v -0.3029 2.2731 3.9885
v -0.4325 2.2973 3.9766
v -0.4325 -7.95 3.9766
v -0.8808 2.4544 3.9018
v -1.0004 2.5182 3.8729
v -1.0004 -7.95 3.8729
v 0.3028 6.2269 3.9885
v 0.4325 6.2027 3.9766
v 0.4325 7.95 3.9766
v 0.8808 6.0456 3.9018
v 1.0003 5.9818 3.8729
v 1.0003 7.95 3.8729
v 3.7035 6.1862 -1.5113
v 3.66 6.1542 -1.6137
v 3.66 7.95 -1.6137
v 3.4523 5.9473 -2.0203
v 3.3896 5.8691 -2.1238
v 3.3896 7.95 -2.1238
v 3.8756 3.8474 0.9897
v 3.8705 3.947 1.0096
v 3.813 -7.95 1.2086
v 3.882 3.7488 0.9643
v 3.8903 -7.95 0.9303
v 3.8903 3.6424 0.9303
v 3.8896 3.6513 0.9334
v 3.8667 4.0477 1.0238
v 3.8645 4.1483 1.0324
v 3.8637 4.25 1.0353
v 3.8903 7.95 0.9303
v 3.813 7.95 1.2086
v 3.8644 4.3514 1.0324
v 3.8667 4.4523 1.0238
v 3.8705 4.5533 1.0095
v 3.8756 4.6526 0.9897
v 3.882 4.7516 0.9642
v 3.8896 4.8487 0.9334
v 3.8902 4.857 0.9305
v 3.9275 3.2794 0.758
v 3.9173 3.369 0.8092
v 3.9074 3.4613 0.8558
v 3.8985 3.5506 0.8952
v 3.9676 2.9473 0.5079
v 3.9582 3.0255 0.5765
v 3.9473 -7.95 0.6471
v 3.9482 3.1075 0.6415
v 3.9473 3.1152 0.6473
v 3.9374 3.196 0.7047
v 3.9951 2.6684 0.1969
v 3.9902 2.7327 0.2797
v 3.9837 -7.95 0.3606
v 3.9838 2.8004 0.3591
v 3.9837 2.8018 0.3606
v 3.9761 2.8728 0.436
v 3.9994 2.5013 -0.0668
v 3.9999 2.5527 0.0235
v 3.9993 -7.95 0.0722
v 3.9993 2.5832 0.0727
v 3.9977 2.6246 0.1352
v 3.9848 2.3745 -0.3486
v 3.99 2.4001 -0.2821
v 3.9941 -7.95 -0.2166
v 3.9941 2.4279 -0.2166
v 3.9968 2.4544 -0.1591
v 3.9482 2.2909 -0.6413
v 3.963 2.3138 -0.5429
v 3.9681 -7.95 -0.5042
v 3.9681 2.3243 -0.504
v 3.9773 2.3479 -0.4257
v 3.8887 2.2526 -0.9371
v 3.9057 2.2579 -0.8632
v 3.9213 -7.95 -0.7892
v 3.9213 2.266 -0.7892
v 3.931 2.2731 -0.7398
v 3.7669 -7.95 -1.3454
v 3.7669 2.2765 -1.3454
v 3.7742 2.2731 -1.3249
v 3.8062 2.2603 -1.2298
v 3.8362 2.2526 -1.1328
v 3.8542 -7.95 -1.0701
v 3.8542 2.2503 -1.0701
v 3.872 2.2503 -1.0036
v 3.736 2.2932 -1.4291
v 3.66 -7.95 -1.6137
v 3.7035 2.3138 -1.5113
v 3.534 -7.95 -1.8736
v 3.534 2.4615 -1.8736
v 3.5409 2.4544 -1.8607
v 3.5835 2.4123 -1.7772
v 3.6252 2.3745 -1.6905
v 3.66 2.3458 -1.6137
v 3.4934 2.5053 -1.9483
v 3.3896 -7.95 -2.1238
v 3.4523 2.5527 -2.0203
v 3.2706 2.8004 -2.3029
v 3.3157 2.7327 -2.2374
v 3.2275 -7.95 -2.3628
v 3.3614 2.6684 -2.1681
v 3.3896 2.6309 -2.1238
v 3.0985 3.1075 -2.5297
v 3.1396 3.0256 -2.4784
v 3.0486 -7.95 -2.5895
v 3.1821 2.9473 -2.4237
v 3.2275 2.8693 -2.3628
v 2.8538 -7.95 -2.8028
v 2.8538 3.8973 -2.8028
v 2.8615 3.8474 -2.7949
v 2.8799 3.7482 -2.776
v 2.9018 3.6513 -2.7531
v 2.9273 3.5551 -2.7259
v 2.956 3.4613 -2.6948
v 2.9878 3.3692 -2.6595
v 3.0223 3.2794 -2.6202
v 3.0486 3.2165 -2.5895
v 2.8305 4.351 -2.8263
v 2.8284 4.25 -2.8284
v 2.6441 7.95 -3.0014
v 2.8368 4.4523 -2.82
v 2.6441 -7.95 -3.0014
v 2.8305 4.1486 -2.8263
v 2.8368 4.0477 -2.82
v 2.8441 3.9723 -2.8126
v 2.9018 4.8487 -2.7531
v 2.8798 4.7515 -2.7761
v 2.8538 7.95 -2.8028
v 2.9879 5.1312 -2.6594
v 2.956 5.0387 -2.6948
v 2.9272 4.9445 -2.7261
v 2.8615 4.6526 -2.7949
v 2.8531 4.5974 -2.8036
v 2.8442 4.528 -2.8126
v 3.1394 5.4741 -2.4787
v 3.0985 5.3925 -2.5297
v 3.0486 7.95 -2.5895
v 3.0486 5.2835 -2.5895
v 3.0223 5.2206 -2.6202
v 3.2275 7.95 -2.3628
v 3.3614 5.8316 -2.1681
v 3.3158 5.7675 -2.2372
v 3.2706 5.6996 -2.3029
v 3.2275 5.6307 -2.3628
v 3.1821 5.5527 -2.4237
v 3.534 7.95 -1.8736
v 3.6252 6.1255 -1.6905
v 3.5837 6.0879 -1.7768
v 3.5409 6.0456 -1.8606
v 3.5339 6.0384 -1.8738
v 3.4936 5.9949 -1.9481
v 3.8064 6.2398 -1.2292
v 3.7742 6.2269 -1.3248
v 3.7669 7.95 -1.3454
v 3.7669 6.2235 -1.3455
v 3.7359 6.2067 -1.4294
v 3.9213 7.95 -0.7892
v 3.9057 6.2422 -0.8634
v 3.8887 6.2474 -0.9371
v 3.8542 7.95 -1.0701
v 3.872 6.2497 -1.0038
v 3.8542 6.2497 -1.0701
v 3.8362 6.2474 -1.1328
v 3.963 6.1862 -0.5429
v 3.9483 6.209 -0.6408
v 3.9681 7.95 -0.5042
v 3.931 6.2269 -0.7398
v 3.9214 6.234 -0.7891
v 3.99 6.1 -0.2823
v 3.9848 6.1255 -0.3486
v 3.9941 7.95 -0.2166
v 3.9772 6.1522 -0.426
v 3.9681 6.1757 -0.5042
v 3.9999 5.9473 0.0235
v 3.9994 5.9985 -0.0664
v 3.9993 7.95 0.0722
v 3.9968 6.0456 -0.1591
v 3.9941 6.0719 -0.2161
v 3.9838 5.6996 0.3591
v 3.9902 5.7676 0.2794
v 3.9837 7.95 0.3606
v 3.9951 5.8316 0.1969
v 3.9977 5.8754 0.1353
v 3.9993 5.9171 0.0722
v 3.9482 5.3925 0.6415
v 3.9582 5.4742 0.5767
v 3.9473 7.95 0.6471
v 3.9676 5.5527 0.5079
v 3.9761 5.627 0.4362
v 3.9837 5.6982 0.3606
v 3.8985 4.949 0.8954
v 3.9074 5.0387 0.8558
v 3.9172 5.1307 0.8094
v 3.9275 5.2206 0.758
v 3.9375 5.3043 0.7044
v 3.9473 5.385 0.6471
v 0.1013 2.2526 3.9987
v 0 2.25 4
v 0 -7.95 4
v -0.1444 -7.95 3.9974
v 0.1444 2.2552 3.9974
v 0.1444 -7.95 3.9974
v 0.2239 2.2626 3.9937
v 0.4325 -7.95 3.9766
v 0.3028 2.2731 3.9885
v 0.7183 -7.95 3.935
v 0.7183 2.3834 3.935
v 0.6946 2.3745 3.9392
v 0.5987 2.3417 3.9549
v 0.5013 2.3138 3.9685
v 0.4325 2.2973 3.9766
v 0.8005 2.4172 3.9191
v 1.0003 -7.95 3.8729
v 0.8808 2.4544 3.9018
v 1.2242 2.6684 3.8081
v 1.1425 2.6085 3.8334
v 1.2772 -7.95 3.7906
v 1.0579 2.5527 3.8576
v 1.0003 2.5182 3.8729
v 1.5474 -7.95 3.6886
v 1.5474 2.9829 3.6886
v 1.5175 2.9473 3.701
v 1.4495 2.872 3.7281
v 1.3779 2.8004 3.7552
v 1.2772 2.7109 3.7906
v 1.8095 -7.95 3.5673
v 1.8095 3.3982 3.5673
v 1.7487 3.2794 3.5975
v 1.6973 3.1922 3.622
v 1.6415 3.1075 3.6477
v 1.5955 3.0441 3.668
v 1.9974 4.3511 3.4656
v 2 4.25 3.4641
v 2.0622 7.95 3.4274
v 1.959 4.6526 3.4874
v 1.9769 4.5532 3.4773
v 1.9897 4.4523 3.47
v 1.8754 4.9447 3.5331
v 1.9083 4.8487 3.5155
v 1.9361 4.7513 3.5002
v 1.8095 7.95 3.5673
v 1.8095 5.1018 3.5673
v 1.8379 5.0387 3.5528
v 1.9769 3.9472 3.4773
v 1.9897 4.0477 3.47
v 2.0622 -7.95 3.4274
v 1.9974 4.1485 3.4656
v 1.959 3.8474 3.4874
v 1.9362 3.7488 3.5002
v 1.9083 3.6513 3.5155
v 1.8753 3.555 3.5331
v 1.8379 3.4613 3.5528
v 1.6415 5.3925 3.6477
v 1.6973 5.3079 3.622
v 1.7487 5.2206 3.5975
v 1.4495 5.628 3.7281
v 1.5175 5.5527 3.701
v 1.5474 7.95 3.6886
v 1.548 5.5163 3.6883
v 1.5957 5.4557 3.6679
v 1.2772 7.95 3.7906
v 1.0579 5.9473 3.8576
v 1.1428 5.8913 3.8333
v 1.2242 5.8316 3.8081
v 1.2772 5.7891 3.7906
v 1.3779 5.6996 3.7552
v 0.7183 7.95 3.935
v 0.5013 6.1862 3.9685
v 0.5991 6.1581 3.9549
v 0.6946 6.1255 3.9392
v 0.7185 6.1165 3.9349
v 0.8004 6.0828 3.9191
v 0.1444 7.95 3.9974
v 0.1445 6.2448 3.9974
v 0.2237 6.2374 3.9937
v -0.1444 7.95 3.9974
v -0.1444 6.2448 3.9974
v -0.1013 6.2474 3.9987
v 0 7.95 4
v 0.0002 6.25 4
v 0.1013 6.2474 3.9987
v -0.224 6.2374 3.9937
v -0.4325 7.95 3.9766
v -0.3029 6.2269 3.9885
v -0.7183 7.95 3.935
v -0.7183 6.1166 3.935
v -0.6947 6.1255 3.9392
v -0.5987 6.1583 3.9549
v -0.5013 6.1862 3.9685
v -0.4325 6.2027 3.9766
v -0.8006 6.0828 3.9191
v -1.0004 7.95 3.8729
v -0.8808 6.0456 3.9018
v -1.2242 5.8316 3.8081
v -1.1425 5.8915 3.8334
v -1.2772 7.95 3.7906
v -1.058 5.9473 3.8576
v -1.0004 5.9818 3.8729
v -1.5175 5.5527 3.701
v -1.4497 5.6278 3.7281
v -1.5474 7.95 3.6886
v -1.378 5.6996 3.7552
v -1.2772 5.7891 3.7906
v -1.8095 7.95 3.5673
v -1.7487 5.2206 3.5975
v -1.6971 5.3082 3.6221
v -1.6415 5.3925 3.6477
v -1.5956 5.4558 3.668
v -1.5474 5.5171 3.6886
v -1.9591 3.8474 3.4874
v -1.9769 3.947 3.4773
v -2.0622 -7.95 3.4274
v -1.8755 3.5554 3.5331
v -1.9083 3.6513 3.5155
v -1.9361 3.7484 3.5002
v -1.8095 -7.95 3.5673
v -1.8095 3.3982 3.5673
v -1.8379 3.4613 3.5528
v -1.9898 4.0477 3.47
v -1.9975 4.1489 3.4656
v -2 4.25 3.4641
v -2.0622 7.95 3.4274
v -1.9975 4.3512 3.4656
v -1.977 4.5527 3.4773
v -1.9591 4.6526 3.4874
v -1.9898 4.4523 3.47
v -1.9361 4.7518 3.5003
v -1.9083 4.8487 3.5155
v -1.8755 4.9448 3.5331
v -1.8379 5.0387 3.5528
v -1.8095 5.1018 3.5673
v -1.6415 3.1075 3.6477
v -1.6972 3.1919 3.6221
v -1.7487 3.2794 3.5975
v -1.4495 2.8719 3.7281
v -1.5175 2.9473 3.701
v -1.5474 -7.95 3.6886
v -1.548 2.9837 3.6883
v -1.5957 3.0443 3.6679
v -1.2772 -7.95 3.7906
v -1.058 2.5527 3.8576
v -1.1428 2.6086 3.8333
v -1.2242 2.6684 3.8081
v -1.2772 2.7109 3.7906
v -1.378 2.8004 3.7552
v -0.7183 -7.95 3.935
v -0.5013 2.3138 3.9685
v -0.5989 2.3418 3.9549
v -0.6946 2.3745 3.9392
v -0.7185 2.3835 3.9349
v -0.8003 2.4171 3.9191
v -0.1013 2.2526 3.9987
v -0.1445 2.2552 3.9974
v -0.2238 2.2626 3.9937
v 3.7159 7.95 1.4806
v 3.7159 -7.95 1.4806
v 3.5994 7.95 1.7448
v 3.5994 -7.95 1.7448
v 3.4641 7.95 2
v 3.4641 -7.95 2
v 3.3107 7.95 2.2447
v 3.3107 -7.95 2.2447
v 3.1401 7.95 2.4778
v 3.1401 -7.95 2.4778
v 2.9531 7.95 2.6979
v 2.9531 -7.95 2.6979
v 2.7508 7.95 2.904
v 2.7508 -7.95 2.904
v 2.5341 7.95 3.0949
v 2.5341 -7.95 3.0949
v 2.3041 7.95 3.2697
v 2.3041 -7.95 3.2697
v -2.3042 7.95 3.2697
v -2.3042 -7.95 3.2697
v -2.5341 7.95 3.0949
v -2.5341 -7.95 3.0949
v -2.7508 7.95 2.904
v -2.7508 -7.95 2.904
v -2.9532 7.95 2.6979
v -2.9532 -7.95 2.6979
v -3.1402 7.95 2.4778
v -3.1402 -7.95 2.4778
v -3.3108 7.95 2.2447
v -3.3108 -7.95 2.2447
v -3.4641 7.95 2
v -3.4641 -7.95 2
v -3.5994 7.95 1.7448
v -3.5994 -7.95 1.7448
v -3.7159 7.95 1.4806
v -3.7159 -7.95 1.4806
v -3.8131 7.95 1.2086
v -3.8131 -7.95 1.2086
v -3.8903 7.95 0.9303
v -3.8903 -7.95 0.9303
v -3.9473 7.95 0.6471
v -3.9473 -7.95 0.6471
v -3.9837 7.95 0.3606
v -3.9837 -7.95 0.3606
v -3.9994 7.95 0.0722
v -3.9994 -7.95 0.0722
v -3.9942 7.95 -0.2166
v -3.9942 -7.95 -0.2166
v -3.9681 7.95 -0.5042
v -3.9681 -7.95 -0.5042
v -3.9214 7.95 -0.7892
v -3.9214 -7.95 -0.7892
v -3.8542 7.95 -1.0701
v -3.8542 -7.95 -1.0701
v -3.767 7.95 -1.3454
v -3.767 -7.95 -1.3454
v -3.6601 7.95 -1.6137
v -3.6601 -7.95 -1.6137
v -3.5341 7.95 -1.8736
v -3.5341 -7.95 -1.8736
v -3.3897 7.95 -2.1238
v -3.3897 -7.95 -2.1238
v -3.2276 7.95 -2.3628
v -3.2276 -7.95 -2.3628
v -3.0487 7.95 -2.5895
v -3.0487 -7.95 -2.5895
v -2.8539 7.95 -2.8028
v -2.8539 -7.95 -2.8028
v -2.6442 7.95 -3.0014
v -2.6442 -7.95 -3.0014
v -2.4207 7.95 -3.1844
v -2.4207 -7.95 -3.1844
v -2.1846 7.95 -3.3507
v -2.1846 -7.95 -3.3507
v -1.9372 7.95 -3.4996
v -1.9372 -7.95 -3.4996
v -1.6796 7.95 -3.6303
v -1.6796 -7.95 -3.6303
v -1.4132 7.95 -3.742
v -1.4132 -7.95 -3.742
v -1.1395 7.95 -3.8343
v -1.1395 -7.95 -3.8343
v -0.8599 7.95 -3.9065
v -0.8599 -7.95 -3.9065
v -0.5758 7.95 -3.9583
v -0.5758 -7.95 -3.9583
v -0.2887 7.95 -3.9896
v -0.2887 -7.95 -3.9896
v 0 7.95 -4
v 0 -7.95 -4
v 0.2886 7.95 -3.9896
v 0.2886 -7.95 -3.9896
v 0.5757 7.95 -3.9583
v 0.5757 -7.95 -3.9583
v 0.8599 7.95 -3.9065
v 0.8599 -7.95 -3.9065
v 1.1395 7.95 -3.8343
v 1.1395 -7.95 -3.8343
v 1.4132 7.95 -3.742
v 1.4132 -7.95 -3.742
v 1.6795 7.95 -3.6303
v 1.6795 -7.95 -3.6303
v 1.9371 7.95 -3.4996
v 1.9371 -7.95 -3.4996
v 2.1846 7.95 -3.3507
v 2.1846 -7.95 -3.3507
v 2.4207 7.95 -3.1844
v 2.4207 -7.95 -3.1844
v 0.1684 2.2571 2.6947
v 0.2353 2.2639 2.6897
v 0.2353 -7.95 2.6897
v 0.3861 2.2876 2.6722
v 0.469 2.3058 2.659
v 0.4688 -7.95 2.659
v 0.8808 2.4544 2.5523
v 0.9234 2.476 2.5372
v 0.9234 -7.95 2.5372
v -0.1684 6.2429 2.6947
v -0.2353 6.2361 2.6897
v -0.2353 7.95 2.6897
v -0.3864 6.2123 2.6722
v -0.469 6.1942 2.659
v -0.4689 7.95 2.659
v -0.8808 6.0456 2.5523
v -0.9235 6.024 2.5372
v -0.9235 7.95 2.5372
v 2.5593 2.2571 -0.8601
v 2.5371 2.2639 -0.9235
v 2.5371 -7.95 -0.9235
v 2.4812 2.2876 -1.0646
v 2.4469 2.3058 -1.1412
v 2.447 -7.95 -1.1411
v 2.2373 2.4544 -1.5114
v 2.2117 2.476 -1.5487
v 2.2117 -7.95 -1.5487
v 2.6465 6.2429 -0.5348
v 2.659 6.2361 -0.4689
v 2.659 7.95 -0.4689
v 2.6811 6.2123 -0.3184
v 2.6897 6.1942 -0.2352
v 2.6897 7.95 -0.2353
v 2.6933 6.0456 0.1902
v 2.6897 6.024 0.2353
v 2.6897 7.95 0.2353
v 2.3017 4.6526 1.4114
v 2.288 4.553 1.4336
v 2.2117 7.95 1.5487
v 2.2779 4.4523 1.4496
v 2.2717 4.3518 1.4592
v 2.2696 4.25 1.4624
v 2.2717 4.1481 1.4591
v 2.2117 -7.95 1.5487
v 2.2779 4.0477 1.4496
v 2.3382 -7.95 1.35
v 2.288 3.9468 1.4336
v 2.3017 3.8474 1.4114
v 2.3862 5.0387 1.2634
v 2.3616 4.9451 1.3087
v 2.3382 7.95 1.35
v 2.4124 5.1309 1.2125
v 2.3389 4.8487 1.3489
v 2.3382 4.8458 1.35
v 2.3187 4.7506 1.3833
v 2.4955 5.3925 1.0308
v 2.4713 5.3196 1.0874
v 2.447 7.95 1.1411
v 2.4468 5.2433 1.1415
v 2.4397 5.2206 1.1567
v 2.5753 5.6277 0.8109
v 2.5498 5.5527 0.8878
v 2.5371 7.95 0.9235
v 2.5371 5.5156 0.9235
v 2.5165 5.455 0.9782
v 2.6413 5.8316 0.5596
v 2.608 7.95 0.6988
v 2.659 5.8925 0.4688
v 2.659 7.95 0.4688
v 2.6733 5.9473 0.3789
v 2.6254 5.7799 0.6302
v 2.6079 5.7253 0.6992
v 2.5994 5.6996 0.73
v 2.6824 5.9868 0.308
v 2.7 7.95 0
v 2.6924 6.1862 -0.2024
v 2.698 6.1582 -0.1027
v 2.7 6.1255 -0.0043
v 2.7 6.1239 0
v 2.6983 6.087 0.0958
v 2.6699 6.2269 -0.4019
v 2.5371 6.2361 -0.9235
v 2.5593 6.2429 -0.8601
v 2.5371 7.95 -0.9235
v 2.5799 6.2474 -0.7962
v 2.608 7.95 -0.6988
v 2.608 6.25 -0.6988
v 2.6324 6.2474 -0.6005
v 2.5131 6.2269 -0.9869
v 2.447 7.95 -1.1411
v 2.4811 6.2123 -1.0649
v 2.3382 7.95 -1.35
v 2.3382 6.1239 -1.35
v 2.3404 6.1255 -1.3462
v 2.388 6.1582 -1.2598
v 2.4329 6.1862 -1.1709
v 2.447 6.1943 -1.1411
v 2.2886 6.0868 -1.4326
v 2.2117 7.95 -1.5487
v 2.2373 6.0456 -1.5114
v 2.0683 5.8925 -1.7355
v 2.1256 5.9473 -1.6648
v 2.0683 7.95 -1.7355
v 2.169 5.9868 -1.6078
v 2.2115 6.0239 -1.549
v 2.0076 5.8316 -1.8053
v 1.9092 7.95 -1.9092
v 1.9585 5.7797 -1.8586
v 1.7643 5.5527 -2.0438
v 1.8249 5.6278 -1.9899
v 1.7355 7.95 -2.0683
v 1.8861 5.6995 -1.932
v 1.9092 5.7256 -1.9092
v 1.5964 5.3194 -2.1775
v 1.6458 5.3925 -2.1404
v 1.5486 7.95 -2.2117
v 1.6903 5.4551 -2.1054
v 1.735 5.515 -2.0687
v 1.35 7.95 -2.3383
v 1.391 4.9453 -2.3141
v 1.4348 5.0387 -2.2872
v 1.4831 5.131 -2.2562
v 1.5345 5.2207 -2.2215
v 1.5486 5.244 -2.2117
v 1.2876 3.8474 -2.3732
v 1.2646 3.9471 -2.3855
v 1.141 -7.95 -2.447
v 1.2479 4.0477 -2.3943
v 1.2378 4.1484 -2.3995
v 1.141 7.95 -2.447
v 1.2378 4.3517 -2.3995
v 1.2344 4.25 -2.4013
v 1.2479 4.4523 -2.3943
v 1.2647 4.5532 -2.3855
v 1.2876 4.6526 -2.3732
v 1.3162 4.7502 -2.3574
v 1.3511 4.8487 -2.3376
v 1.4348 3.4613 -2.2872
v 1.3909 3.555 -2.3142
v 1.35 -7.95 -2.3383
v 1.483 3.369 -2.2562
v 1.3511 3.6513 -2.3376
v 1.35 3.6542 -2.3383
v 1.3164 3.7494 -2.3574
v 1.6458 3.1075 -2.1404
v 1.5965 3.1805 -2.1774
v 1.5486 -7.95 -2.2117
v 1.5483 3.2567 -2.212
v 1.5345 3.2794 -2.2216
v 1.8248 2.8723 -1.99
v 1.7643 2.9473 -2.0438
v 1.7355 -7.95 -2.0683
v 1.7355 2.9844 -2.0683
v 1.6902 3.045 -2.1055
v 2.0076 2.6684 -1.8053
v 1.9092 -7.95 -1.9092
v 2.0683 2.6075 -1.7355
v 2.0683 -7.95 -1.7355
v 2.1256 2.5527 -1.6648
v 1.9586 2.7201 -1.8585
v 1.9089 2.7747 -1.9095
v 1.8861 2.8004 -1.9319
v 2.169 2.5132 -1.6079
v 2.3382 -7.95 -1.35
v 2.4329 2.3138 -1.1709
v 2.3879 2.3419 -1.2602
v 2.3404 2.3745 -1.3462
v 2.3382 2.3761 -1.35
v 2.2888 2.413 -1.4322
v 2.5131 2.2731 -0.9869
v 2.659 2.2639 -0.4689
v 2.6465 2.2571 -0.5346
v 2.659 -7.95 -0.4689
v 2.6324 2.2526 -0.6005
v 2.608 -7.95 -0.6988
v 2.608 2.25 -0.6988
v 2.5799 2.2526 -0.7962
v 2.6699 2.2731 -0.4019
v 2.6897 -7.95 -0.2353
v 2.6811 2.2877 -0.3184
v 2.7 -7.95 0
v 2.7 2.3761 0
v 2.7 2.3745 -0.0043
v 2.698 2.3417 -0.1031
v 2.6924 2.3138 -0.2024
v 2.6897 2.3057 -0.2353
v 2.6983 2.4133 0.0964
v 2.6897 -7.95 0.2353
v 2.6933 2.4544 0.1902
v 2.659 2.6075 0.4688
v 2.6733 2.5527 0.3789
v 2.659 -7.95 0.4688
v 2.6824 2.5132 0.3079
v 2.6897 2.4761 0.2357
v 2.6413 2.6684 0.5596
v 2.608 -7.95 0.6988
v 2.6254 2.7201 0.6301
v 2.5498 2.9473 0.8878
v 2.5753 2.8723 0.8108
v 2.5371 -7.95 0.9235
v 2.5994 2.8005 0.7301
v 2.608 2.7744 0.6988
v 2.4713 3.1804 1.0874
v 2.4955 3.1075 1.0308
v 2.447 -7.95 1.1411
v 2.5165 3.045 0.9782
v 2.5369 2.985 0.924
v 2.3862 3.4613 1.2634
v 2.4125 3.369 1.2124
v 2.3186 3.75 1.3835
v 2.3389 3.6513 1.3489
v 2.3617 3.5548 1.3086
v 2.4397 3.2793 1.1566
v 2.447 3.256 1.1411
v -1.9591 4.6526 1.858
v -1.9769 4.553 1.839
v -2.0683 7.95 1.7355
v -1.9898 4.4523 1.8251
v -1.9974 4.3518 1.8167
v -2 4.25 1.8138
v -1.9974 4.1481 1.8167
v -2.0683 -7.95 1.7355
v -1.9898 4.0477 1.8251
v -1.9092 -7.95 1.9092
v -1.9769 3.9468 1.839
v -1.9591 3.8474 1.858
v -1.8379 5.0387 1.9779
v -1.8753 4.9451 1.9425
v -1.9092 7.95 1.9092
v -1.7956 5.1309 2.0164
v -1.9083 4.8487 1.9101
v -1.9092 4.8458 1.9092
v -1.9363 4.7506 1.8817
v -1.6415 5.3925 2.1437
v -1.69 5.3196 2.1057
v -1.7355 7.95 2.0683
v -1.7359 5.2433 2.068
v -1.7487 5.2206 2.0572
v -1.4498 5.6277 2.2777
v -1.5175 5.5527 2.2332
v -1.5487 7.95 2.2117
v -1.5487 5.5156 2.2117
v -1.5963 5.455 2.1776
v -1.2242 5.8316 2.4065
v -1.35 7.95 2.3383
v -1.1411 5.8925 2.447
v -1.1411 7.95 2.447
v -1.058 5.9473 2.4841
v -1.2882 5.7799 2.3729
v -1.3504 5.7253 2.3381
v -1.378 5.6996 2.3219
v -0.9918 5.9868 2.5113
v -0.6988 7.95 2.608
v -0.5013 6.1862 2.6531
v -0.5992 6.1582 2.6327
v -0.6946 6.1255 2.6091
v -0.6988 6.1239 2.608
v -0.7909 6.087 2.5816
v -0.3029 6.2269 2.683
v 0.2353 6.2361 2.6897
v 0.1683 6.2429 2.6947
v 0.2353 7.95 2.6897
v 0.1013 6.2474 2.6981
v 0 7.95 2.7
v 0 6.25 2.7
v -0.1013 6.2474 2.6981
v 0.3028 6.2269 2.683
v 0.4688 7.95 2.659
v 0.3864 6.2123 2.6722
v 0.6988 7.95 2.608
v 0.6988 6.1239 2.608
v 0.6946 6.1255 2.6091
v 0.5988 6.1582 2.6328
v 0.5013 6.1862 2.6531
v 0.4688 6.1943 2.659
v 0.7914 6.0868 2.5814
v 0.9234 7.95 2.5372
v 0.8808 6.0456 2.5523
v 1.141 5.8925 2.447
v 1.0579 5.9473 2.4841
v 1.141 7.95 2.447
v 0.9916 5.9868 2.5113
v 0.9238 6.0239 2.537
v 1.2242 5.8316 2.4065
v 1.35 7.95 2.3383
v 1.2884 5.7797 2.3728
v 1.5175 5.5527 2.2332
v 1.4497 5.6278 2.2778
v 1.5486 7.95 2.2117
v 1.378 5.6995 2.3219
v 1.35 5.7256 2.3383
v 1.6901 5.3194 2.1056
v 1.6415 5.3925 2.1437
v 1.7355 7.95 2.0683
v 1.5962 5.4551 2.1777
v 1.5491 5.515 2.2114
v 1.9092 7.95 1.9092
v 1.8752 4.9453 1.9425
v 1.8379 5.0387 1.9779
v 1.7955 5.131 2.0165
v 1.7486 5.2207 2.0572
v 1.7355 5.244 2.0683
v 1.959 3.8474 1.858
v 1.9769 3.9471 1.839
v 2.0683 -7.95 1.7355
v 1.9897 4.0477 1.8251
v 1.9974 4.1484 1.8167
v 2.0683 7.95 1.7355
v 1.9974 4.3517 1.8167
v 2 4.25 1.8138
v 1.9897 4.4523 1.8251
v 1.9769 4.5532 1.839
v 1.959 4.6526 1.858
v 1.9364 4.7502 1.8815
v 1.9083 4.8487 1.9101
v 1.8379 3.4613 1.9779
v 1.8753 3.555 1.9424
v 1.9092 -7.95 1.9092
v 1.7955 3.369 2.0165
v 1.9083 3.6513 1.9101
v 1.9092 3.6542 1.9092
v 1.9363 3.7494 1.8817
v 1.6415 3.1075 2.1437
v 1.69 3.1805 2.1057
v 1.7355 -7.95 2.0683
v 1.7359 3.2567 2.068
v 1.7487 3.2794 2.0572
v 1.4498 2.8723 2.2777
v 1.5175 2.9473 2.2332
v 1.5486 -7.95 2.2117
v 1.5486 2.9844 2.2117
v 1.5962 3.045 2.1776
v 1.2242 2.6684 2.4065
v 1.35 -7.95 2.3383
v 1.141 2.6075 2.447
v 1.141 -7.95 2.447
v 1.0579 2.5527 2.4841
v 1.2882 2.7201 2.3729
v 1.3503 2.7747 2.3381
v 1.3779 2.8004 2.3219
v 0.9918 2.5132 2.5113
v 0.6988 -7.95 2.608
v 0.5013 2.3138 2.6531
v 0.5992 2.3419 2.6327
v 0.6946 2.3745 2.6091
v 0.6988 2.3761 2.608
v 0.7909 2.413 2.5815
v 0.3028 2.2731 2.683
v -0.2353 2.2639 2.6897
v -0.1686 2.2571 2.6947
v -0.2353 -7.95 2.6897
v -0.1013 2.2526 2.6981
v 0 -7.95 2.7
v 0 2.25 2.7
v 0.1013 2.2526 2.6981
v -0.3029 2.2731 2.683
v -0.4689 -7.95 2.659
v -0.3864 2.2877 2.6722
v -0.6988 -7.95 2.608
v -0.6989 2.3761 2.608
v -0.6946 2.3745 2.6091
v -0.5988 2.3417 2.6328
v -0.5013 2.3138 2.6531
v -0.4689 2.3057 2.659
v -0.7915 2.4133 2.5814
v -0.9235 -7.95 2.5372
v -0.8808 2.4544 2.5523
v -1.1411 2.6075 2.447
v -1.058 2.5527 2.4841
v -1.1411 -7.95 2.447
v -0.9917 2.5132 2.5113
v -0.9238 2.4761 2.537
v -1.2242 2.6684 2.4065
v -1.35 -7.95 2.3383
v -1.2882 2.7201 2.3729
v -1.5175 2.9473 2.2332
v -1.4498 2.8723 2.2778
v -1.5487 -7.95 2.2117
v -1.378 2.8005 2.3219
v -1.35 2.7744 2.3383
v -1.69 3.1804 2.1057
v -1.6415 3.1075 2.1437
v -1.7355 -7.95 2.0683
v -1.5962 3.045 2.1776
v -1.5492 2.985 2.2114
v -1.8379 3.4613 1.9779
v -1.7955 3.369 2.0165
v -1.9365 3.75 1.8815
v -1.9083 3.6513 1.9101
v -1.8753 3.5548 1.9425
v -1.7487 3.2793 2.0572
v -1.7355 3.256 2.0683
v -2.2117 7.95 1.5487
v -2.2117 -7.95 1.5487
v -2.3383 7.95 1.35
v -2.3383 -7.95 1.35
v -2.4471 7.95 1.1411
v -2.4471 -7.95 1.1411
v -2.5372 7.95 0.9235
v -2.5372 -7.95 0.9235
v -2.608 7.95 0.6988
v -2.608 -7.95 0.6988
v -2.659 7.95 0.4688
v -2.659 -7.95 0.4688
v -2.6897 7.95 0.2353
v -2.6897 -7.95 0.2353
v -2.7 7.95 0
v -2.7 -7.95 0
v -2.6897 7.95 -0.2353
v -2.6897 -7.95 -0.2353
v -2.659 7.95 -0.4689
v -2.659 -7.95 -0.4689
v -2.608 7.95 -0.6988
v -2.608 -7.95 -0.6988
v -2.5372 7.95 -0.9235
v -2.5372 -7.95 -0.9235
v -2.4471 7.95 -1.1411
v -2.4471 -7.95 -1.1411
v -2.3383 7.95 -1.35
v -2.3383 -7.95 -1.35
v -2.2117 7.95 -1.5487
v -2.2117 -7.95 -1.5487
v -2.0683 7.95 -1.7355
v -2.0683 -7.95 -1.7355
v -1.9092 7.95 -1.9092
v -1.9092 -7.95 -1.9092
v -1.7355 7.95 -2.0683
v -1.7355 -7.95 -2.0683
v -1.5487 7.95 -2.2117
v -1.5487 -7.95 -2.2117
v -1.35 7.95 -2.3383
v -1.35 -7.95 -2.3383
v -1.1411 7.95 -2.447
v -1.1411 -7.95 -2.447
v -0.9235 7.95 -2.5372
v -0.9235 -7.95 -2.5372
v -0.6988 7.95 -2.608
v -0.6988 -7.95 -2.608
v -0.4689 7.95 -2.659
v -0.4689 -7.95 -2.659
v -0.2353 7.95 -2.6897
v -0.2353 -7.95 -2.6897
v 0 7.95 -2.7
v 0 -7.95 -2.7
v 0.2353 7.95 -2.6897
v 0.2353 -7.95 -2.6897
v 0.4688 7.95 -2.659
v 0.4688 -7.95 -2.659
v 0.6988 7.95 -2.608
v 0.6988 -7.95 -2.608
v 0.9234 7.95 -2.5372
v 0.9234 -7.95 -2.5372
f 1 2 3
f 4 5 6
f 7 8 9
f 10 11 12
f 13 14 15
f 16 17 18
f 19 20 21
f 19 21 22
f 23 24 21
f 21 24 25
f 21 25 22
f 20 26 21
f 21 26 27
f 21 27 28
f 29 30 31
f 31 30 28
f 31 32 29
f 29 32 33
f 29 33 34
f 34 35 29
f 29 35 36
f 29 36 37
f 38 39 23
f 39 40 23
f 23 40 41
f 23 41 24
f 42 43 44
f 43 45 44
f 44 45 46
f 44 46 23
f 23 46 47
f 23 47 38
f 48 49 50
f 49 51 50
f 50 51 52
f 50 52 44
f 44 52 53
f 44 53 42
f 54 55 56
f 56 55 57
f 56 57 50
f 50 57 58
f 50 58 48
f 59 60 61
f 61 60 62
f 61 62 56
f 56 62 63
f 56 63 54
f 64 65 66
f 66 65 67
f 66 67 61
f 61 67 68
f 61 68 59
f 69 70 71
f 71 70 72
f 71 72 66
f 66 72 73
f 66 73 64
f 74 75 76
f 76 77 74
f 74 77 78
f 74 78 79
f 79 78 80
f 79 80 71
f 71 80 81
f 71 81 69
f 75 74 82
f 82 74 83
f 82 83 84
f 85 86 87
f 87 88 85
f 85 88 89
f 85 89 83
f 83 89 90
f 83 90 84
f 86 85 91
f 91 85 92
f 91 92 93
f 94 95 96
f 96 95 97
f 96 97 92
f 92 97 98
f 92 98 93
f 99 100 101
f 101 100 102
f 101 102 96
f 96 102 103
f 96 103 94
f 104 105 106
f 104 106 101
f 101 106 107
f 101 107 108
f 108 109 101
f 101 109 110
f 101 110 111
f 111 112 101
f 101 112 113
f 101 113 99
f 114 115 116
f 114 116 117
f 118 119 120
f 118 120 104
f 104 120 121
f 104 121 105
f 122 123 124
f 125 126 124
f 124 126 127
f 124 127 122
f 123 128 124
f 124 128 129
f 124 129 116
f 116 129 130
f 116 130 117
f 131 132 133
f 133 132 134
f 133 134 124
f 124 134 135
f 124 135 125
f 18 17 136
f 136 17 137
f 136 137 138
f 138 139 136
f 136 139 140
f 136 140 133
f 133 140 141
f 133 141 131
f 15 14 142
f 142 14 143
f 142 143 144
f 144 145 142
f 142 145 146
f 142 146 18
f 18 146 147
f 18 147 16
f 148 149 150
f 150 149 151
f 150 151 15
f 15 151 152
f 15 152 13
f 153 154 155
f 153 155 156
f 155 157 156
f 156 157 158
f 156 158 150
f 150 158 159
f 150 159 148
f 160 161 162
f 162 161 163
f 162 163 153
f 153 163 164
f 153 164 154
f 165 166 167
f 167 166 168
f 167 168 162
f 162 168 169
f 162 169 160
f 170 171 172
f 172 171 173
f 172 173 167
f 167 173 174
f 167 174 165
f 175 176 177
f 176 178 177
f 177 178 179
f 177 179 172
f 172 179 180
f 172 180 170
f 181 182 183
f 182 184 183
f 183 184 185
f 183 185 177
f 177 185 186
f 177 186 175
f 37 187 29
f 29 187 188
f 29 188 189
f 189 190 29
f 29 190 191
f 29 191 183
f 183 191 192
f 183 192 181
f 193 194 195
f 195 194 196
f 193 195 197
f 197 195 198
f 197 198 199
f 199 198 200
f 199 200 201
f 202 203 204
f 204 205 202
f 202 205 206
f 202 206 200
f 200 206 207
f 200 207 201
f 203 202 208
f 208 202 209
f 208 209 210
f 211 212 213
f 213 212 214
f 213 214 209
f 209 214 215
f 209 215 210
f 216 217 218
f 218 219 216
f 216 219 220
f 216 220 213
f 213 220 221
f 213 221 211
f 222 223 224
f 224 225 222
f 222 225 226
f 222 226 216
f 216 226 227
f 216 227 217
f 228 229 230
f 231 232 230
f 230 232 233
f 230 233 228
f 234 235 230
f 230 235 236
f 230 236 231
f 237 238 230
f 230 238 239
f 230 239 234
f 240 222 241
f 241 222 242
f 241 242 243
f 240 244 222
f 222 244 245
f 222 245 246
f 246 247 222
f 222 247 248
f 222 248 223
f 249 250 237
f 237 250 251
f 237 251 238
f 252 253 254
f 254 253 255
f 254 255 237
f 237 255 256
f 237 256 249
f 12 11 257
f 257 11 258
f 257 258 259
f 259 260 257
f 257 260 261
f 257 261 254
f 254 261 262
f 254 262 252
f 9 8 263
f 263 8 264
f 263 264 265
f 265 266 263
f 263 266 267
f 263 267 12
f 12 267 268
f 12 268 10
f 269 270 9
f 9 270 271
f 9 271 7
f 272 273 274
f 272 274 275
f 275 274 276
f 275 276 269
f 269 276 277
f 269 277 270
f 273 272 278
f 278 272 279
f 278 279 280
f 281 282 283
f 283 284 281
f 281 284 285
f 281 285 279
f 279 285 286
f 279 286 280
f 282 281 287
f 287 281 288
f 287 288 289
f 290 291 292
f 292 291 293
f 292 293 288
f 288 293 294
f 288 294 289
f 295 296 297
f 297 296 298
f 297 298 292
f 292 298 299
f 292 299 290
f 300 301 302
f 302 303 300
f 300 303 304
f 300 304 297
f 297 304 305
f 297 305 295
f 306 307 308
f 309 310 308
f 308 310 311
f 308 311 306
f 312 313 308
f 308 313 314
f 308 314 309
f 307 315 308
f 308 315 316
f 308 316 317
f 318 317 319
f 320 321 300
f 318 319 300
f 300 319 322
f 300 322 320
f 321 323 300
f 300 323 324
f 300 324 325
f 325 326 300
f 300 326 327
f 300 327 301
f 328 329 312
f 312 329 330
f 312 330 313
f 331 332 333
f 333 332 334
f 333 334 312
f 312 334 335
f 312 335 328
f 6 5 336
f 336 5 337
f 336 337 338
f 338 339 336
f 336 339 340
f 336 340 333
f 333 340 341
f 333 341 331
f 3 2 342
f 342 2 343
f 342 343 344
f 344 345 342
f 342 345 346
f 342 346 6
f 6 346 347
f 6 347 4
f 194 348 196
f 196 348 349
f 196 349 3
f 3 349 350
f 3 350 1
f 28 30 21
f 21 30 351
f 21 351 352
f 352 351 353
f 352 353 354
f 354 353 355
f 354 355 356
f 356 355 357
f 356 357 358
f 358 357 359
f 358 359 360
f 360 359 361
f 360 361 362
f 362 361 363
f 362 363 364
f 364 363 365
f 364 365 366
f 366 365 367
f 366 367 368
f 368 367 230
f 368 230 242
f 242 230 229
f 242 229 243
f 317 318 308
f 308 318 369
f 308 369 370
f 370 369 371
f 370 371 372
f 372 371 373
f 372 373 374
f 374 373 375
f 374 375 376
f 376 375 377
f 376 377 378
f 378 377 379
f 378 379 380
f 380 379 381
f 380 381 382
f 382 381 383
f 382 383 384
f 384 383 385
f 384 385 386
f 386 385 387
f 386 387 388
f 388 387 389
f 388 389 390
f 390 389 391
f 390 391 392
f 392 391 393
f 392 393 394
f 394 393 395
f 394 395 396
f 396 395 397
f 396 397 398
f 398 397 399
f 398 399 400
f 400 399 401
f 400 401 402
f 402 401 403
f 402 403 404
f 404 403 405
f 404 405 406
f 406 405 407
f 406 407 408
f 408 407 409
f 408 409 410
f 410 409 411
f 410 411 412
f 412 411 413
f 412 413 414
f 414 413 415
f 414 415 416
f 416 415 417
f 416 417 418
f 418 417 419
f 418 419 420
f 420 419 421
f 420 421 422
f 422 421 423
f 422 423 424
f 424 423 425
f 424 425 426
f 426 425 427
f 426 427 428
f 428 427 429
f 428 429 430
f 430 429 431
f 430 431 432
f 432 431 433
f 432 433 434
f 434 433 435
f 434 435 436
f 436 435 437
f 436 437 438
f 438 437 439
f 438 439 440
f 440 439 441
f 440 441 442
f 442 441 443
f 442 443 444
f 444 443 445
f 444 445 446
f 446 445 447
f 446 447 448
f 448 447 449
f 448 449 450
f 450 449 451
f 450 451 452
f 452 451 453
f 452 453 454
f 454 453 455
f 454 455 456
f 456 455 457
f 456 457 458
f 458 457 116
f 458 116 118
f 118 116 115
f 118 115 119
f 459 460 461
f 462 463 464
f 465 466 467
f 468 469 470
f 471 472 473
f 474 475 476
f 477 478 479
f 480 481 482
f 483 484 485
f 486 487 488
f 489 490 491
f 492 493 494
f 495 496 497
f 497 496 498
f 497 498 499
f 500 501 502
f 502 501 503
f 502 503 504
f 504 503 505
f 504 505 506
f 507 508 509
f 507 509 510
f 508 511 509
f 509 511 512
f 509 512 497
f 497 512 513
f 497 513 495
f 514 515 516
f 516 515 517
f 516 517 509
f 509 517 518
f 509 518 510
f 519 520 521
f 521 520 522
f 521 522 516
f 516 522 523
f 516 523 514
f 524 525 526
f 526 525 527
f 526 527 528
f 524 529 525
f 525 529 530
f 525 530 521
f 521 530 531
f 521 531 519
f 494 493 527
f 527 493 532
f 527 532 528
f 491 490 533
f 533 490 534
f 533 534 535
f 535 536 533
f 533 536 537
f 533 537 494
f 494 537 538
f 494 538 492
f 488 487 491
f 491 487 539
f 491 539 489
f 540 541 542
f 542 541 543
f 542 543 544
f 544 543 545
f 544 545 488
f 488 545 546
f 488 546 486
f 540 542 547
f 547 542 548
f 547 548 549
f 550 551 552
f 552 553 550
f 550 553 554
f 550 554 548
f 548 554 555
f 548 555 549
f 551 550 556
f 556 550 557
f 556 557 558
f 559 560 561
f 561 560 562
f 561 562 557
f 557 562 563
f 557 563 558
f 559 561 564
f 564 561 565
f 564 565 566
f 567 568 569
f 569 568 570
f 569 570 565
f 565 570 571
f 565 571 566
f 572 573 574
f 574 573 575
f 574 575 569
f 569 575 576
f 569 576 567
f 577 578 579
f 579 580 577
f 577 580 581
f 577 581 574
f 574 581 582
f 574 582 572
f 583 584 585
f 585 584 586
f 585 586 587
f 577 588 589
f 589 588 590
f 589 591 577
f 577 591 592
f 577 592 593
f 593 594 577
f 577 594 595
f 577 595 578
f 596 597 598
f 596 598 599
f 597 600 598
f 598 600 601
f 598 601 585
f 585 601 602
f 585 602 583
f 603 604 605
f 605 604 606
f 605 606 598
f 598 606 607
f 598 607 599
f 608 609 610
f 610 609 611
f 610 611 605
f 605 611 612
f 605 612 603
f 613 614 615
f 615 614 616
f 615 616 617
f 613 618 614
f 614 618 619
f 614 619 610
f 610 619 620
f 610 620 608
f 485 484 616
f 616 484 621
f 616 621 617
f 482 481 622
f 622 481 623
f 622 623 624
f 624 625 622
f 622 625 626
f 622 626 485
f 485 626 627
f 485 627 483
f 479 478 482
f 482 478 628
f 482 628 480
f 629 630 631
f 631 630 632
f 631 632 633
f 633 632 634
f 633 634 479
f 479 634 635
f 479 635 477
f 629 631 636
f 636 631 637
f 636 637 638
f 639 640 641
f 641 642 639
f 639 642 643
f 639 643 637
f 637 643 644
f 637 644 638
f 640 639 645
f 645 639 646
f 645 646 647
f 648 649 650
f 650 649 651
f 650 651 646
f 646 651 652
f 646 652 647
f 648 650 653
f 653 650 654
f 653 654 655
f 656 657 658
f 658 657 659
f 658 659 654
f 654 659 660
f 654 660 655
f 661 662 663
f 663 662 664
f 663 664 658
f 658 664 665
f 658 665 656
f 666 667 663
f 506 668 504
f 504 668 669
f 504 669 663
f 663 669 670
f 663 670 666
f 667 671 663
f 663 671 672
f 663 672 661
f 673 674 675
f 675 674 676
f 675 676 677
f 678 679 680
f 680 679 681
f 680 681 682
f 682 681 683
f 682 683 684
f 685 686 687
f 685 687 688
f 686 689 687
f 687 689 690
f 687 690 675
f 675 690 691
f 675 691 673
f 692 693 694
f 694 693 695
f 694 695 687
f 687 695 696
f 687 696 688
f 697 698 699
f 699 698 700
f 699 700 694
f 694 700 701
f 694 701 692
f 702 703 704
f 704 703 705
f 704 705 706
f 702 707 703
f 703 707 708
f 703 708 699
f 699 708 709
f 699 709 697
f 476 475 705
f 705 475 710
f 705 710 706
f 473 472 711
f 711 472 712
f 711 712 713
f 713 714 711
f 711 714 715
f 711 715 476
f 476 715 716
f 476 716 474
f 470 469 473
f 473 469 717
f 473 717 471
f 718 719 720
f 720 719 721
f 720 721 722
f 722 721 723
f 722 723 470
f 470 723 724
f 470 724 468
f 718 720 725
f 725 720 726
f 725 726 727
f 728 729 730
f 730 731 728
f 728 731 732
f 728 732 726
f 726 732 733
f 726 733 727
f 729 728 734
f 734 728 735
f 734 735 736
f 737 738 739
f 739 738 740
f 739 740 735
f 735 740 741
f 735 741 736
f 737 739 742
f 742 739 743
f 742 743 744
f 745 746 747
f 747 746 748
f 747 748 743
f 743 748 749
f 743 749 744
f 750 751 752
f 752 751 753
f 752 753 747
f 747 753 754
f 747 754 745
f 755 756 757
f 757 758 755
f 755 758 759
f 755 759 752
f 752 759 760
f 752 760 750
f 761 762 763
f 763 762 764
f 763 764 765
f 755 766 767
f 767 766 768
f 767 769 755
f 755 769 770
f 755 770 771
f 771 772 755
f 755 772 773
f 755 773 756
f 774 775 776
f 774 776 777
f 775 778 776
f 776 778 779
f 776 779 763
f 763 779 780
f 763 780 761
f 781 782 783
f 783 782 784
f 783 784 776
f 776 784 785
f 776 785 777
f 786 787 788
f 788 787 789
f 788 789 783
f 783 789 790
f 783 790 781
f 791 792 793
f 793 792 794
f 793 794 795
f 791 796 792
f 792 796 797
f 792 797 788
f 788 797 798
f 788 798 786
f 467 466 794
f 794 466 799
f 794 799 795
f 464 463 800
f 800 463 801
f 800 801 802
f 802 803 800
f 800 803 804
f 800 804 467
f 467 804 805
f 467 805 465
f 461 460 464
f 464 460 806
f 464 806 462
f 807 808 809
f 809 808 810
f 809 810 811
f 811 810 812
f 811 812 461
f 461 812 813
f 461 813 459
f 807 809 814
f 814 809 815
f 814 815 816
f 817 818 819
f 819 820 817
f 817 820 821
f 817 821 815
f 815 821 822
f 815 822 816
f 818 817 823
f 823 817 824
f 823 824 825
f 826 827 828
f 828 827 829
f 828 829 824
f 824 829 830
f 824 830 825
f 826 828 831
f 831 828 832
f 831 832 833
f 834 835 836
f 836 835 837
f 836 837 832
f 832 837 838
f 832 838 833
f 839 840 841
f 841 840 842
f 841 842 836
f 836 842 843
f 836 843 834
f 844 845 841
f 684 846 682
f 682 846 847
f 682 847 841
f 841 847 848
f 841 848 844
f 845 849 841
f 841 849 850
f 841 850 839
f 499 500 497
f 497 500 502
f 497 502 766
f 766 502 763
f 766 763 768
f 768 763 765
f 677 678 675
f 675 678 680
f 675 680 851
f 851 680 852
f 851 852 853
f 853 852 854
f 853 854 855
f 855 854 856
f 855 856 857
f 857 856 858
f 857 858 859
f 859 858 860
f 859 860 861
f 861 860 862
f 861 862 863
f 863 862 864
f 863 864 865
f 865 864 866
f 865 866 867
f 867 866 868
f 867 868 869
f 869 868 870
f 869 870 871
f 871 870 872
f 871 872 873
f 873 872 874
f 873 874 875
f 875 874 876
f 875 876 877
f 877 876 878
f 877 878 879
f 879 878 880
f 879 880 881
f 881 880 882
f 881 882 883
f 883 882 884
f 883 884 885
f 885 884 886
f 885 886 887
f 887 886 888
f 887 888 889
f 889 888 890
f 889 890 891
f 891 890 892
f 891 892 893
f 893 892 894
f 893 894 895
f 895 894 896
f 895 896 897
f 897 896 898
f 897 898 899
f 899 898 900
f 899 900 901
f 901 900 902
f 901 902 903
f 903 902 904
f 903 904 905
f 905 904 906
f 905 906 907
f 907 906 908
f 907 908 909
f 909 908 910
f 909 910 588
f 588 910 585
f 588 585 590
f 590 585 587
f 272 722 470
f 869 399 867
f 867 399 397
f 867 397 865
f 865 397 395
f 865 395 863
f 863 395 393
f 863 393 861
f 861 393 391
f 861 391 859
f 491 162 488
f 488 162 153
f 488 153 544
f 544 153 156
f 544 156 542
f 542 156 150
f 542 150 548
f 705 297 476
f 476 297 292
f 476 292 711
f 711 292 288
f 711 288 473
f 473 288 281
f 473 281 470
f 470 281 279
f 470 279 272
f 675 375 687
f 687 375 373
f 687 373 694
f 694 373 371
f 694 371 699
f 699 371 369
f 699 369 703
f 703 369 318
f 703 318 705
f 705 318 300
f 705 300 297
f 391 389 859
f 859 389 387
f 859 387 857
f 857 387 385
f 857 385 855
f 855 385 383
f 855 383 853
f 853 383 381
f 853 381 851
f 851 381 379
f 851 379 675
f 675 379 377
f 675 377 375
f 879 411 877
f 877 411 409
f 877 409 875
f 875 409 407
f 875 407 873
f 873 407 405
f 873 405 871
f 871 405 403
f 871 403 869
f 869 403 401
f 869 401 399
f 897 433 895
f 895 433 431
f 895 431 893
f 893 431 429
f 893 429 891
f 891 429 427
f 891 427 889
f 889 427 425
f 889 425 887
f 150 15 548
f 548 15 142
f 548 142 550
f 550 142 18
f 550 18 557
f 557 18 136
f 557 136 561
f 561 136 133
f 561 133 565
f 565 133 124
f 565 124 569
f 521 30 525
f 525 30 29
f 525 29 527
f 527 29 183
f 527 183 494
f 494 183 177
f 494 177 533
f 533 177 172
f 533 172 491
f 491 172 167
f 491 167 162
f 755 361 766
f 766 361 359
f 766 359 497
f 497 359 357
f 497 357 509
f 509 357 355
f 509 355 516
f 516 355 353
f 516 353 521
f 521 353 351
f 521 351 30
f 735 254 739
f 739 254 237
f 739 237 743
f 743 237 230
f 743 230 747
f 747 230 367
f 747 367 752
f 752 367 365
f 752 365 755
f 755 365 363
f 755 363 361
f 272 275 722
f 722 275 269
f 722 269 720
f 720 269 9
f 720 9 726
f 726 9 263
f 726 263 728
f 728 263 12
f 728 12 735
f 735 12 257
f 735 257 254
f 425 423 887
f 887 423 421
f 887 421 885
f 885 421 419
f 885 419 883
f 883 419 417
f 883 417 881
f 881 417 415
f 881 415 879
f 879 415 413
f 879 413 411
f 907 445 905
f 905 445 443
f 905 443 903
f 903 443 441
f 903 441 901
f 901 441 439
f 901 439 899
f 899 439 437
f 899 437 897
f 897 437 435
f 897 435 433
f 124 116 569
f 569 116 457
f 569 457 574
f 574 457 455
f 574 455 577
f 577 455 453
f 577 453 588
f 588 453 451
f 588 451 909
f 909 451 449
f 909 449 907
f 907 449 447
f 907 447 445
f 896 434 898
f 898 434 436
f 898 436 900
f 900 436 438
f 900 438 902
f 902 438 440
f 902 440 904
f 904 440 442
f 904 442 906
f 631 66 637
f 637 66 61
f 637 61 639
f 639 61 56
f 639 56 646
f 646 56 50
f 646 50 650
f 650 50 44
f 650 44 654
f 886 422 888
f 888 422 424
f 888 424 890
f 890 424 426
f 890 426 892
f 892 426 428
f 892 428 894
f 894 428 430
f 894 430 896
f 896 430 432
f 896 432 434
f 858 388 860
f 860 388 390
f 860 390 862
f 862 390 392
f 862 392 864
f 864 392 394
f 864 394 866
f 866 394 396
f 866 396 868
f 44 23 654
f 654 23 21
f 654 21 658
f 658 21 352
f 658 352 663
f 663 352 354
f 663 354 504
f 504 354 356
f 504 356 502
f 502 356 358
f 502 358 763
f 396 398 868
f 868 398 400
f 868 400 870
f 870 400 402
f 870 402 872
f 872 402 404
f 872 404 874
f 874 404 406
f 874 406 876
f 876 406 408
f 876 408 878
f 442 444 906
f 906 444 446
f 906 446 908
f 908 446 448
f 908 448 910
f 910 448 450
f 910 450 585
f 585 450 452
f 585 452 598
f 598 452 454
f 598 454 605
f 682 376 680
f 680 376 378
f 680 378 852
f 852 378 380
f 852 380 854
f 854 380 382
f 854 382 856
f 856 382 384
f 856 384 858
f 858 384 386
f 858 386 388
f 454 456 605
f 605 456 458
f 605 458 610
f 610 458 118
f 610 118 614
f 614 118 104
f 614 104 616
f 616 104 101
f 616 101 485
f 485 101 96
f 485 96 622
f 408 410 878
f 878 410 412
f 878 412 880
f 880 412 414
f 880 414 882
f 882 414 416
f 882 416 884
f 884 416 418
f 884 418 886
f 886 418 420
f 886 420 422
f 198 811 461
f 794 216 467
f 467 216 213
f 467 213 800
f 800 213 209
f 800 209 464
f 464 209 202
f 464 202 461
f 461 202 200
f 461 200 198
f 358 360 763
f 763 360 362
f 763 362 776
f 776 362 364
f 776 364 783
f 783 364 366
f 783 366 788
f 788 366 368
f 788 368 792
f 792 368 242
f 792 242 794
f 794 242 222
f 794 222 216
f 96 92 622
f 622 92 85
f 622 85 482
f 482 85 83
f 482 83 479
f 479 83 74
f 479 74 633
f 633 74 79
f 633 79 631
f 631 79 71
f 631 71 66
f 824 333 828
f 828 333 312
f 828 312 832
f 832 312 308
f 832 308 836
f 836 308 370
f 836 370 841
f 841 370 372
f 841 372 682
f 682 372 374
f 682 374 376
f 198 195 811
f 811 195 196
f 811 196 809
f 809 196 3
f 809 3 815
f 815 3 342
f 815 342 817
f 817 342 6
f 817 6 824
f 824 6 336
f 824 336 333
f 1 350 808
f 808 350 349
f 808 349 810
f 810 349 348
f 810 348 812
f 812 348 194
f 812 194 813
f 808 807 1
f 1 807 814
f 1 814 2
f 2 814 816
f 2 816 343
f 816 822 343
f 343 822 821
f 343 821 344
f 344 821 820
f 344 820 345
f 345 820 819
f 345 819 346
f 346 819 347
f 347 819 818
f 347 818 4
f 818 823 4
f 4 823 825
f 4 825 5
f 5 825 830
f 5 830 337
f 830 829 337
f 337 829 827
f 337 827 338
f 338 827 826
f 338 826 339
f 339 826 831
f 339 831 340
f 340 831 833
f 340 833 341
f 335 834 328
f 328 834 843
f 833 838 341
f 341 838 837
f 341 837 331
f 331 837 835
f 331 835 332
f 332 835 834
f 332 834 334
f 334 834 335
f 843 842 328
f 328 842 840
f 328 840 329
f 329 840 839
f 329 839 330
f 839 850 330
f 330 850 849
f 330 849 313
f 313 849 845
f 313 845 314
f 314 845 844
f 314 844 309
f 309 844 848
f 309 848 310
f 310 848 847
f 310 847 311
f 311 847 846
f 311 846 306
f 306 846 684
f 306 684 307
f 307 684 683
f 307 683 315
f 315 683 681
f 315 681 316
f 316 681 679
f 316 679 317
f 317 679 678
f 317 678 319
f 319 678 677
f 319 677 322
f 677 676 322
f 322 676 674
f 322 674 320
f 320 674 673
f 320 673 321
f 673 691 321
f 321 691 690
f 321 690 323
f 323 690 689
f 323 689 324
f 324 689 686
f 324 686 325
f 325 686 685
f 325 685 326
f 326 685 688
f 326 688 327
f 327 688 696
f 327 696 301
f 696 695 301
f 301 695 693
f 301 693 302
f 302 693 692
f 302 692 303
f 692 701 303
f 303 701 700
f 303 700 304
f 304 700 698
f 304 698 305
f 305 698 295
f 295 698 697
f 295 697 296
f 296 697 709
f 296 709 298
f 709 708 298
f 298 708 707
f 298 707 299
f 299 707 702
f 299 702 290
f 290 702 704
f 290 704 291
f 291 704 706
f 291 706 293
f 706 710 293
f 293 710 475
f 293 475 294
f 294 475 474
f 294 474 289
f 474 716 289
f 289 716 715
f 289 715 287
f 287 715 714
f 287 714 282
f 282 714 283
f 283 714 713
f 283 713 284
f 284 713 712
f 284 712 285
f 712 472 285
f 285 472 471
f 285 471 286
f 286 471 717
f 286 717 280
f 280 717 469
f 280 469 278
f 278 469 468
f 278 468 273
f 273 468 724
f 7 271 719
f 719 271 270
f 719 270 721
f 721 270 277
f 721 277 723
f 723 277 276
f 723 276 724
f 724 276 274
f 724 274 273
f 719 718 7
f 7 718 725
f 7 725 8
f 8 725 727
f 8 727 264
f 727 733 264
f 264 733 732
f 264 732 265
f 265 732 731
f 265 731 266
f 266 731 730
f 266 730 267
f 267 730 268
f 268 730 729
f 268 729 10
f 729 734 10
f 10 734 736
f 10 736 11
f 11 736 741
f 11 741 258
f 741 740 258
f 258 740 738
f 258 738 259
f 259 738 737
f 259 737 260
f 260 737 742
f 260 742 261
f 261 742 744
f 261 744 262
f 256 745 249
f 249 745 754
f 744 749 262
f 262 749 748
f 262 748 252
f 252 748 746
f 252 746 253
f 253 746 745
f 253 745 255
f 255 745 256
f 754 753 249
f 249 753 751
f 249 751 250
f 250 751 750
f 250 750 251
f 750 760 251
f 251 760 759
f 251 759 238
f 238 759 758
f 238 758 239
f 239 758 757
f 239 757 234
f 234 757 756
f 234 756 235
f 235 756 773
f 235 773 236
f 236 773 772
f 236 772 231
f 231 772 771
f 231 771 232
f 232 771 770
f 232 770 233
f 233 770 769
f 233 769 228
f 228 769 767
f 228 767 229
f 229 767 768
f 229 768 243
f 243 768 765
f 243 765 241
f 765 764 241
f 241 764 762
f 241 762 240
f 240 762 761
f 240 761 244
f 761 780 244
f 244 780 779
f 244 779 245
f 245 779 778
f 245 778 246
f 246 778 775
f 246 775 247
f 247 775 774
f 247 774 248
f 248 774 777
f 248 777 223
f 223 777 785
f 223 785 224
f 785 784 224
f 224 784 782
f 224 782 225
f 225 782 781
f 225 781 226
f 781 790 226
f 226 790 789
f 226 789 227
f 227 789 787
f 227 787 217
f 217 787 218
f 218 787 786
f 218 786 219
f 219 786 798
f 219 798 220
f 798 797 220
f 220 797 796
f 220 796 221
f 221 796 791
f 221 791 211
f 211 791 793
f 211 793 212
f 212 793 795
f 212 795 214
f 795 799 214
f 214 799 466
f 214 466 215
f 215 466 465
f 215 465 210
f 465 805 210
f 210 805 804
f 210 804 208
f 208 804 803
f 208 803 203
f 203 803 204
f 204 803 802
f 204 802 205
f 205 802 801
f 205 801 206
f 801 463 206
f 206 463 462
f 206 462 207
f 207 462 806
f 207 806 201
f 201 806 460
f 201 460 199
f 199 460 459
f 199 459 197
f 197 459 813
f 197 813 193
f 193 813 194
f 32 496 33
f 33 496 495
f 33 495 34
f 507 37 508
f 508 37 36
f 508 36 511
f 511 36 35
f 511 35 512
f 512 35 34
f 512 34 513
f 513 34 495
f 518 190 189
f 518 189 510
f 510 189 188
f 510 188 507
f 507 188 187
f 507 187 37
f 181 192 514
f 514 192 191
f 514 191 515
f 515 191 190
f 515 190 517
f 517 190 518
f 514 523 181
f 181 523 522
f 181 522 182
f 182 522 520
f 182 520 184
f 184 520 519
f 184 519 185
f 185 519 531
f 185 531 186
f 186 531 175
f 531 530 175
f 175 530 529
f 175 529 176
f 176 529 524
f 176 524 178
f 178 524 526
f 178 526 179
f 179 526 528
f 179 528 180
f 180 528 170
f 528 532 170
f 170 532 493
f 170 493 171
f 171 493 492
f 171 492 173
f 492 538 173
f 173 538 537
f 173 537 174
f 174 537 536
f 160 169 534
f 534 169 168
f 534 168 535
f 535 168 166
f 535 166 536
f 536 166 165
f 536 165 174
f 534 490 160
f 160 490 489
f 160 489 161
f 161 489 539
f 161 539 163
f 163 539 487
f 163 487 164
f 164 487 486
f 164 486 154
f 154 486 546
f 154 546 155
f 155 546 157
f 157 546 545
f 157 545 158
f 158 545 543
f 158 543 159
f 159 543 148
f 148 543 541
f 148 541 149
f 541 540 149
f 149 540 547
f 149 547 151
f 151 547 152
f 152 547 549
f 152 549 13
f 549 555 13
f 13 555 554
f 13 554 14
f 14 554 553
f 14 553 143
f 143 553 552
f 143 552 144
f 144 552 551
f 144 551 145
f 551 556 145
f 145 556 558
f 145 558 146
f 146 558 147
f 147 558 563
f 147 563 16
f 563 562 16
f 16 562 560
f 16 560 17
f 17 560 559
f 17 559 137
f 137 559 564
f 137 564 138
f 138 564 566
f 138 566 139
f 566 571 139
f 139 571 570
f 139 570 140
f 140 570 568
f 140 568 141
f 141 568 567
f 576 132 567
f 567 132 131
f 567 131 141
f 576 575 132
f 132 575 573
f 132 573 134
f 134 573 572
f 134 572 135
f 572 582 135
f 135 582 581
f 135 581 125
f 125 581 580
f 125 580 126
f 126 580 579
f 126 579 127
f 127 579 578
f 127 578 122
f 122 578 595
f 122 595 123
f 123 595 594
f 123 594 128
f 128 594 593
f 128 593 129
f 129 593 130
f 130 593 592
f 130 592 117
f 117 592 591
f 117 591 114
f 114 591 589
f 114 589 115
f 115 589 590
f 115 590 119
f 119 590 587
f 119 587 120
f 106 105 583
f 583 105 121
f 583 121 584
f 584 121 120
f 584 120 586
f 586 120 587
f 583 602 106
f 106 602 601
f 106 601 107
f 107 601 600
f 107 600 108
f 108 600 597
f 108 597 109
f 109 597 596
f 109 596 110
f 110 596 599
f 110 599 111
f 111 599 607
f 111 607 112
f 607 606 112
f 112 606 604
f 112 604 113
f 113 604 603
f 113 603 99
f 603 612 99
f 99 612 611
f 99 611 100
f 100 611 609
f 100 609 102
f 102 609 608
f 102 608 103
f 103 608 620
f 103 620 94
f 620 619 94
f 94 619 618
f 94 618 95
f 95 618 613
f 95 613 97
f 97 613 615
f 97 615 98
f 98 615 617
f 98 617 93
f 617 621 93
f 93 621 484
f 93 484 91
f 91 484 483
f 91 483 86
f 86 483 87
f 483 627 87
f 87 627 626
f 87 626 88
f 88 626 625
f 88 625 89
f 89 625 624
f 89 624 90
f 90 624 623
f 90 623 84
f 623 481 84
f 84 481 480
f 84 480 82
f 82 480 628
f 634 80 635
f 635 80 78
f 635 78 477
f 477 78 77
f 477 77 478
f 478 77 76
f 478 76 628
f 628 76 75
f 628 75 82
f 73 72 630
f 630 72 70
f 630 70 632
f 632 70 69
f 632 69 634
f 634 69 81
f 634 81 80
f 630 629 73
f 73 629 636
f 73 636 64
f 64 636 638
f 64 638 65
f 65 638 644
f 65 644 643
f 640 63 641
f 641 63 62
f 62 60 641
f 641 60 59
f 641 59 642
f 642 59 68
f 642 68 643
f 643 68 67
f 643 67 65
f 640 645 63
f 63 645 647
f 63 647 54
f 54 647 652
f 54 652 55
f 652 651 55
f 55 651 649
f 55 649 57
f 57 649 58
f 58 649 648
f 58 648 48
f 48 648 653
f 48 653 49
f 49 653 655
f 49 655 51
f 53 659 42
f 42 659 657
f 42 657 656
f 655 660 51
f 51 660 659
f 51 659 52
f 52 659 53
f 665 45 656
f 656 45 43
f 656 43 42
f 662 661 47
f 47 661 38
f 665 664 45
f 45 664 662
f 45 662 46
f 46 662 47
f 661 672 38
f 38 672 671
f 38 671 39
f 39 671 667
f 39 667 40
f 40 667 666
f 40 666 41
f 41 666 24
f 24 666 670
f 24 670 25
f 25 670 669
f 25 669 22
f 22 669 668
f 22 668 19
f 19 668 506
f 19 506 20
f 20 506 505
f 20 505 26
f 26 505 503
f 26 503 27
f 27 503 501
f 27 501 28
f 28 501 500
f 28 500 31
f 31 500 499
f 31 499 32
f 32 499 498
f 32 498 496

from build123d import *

# Parameters (mm, degrees)
SKETCH1_R           = 4
SKETCH1_R_2         = 2.7
BOSS_EXTRUDE1_DEPTH = 7.95
SKETCH2_R           = 2
CUT_EXTRUDE1_DEPTH  = 10.757176846
CIRPATTERN1_COUNT   = 2
CIRPATTERN1_ANGLE   = 105


with BuildPart() as part:
    # Sketch1 → Boss-Extrude1 (new, symmetric)
    with BuildSketch(Plane(origin=(0, 0, 0), x_dir=(1, 0, 0), z_dir=(0, 1, 0))):
        with Locations(Location((0, 0, 0), (0, 0, 270))):
            Circle(SKETCH1_R)
        with Locations(Location((0, 0, 0), (0, 0, 270))):
            Circle(SKETCH1_R_2, mode=Mode.SUBTRACT)
    extrude(amount=BOSS_EXTRUDE1_DEPTH, both=True)

    # Sketch2 → Cut-Extrude1 (cut, through all)
    with BuildSketch(Plane.XY):
        with Locations(Location((0, 4.25, 0), (0, 0, 90.000000002))):
            Circle(SKETCH2_R)
    cut_extrude1 = extrude(amount=CUT_EXTRUDE1_DEPTH, mode=Mode.SUBTRACT)

    # CirPattern1: Cut-Extrude1 ×2 about axis
    cirpattern1_axis = Axis((0, 7.95, 0), (0, 1, 0))
    for i in range(1, CIRPATTERN1_COUNT):
        add(cut_extrude1.rotate(cirpattern1_axis, i * CIRPATTERN1_ANGLE / (CIRPATTERN1_COUNT - 1)), mode=Mode.SUBTRACT)


solid = part.part
